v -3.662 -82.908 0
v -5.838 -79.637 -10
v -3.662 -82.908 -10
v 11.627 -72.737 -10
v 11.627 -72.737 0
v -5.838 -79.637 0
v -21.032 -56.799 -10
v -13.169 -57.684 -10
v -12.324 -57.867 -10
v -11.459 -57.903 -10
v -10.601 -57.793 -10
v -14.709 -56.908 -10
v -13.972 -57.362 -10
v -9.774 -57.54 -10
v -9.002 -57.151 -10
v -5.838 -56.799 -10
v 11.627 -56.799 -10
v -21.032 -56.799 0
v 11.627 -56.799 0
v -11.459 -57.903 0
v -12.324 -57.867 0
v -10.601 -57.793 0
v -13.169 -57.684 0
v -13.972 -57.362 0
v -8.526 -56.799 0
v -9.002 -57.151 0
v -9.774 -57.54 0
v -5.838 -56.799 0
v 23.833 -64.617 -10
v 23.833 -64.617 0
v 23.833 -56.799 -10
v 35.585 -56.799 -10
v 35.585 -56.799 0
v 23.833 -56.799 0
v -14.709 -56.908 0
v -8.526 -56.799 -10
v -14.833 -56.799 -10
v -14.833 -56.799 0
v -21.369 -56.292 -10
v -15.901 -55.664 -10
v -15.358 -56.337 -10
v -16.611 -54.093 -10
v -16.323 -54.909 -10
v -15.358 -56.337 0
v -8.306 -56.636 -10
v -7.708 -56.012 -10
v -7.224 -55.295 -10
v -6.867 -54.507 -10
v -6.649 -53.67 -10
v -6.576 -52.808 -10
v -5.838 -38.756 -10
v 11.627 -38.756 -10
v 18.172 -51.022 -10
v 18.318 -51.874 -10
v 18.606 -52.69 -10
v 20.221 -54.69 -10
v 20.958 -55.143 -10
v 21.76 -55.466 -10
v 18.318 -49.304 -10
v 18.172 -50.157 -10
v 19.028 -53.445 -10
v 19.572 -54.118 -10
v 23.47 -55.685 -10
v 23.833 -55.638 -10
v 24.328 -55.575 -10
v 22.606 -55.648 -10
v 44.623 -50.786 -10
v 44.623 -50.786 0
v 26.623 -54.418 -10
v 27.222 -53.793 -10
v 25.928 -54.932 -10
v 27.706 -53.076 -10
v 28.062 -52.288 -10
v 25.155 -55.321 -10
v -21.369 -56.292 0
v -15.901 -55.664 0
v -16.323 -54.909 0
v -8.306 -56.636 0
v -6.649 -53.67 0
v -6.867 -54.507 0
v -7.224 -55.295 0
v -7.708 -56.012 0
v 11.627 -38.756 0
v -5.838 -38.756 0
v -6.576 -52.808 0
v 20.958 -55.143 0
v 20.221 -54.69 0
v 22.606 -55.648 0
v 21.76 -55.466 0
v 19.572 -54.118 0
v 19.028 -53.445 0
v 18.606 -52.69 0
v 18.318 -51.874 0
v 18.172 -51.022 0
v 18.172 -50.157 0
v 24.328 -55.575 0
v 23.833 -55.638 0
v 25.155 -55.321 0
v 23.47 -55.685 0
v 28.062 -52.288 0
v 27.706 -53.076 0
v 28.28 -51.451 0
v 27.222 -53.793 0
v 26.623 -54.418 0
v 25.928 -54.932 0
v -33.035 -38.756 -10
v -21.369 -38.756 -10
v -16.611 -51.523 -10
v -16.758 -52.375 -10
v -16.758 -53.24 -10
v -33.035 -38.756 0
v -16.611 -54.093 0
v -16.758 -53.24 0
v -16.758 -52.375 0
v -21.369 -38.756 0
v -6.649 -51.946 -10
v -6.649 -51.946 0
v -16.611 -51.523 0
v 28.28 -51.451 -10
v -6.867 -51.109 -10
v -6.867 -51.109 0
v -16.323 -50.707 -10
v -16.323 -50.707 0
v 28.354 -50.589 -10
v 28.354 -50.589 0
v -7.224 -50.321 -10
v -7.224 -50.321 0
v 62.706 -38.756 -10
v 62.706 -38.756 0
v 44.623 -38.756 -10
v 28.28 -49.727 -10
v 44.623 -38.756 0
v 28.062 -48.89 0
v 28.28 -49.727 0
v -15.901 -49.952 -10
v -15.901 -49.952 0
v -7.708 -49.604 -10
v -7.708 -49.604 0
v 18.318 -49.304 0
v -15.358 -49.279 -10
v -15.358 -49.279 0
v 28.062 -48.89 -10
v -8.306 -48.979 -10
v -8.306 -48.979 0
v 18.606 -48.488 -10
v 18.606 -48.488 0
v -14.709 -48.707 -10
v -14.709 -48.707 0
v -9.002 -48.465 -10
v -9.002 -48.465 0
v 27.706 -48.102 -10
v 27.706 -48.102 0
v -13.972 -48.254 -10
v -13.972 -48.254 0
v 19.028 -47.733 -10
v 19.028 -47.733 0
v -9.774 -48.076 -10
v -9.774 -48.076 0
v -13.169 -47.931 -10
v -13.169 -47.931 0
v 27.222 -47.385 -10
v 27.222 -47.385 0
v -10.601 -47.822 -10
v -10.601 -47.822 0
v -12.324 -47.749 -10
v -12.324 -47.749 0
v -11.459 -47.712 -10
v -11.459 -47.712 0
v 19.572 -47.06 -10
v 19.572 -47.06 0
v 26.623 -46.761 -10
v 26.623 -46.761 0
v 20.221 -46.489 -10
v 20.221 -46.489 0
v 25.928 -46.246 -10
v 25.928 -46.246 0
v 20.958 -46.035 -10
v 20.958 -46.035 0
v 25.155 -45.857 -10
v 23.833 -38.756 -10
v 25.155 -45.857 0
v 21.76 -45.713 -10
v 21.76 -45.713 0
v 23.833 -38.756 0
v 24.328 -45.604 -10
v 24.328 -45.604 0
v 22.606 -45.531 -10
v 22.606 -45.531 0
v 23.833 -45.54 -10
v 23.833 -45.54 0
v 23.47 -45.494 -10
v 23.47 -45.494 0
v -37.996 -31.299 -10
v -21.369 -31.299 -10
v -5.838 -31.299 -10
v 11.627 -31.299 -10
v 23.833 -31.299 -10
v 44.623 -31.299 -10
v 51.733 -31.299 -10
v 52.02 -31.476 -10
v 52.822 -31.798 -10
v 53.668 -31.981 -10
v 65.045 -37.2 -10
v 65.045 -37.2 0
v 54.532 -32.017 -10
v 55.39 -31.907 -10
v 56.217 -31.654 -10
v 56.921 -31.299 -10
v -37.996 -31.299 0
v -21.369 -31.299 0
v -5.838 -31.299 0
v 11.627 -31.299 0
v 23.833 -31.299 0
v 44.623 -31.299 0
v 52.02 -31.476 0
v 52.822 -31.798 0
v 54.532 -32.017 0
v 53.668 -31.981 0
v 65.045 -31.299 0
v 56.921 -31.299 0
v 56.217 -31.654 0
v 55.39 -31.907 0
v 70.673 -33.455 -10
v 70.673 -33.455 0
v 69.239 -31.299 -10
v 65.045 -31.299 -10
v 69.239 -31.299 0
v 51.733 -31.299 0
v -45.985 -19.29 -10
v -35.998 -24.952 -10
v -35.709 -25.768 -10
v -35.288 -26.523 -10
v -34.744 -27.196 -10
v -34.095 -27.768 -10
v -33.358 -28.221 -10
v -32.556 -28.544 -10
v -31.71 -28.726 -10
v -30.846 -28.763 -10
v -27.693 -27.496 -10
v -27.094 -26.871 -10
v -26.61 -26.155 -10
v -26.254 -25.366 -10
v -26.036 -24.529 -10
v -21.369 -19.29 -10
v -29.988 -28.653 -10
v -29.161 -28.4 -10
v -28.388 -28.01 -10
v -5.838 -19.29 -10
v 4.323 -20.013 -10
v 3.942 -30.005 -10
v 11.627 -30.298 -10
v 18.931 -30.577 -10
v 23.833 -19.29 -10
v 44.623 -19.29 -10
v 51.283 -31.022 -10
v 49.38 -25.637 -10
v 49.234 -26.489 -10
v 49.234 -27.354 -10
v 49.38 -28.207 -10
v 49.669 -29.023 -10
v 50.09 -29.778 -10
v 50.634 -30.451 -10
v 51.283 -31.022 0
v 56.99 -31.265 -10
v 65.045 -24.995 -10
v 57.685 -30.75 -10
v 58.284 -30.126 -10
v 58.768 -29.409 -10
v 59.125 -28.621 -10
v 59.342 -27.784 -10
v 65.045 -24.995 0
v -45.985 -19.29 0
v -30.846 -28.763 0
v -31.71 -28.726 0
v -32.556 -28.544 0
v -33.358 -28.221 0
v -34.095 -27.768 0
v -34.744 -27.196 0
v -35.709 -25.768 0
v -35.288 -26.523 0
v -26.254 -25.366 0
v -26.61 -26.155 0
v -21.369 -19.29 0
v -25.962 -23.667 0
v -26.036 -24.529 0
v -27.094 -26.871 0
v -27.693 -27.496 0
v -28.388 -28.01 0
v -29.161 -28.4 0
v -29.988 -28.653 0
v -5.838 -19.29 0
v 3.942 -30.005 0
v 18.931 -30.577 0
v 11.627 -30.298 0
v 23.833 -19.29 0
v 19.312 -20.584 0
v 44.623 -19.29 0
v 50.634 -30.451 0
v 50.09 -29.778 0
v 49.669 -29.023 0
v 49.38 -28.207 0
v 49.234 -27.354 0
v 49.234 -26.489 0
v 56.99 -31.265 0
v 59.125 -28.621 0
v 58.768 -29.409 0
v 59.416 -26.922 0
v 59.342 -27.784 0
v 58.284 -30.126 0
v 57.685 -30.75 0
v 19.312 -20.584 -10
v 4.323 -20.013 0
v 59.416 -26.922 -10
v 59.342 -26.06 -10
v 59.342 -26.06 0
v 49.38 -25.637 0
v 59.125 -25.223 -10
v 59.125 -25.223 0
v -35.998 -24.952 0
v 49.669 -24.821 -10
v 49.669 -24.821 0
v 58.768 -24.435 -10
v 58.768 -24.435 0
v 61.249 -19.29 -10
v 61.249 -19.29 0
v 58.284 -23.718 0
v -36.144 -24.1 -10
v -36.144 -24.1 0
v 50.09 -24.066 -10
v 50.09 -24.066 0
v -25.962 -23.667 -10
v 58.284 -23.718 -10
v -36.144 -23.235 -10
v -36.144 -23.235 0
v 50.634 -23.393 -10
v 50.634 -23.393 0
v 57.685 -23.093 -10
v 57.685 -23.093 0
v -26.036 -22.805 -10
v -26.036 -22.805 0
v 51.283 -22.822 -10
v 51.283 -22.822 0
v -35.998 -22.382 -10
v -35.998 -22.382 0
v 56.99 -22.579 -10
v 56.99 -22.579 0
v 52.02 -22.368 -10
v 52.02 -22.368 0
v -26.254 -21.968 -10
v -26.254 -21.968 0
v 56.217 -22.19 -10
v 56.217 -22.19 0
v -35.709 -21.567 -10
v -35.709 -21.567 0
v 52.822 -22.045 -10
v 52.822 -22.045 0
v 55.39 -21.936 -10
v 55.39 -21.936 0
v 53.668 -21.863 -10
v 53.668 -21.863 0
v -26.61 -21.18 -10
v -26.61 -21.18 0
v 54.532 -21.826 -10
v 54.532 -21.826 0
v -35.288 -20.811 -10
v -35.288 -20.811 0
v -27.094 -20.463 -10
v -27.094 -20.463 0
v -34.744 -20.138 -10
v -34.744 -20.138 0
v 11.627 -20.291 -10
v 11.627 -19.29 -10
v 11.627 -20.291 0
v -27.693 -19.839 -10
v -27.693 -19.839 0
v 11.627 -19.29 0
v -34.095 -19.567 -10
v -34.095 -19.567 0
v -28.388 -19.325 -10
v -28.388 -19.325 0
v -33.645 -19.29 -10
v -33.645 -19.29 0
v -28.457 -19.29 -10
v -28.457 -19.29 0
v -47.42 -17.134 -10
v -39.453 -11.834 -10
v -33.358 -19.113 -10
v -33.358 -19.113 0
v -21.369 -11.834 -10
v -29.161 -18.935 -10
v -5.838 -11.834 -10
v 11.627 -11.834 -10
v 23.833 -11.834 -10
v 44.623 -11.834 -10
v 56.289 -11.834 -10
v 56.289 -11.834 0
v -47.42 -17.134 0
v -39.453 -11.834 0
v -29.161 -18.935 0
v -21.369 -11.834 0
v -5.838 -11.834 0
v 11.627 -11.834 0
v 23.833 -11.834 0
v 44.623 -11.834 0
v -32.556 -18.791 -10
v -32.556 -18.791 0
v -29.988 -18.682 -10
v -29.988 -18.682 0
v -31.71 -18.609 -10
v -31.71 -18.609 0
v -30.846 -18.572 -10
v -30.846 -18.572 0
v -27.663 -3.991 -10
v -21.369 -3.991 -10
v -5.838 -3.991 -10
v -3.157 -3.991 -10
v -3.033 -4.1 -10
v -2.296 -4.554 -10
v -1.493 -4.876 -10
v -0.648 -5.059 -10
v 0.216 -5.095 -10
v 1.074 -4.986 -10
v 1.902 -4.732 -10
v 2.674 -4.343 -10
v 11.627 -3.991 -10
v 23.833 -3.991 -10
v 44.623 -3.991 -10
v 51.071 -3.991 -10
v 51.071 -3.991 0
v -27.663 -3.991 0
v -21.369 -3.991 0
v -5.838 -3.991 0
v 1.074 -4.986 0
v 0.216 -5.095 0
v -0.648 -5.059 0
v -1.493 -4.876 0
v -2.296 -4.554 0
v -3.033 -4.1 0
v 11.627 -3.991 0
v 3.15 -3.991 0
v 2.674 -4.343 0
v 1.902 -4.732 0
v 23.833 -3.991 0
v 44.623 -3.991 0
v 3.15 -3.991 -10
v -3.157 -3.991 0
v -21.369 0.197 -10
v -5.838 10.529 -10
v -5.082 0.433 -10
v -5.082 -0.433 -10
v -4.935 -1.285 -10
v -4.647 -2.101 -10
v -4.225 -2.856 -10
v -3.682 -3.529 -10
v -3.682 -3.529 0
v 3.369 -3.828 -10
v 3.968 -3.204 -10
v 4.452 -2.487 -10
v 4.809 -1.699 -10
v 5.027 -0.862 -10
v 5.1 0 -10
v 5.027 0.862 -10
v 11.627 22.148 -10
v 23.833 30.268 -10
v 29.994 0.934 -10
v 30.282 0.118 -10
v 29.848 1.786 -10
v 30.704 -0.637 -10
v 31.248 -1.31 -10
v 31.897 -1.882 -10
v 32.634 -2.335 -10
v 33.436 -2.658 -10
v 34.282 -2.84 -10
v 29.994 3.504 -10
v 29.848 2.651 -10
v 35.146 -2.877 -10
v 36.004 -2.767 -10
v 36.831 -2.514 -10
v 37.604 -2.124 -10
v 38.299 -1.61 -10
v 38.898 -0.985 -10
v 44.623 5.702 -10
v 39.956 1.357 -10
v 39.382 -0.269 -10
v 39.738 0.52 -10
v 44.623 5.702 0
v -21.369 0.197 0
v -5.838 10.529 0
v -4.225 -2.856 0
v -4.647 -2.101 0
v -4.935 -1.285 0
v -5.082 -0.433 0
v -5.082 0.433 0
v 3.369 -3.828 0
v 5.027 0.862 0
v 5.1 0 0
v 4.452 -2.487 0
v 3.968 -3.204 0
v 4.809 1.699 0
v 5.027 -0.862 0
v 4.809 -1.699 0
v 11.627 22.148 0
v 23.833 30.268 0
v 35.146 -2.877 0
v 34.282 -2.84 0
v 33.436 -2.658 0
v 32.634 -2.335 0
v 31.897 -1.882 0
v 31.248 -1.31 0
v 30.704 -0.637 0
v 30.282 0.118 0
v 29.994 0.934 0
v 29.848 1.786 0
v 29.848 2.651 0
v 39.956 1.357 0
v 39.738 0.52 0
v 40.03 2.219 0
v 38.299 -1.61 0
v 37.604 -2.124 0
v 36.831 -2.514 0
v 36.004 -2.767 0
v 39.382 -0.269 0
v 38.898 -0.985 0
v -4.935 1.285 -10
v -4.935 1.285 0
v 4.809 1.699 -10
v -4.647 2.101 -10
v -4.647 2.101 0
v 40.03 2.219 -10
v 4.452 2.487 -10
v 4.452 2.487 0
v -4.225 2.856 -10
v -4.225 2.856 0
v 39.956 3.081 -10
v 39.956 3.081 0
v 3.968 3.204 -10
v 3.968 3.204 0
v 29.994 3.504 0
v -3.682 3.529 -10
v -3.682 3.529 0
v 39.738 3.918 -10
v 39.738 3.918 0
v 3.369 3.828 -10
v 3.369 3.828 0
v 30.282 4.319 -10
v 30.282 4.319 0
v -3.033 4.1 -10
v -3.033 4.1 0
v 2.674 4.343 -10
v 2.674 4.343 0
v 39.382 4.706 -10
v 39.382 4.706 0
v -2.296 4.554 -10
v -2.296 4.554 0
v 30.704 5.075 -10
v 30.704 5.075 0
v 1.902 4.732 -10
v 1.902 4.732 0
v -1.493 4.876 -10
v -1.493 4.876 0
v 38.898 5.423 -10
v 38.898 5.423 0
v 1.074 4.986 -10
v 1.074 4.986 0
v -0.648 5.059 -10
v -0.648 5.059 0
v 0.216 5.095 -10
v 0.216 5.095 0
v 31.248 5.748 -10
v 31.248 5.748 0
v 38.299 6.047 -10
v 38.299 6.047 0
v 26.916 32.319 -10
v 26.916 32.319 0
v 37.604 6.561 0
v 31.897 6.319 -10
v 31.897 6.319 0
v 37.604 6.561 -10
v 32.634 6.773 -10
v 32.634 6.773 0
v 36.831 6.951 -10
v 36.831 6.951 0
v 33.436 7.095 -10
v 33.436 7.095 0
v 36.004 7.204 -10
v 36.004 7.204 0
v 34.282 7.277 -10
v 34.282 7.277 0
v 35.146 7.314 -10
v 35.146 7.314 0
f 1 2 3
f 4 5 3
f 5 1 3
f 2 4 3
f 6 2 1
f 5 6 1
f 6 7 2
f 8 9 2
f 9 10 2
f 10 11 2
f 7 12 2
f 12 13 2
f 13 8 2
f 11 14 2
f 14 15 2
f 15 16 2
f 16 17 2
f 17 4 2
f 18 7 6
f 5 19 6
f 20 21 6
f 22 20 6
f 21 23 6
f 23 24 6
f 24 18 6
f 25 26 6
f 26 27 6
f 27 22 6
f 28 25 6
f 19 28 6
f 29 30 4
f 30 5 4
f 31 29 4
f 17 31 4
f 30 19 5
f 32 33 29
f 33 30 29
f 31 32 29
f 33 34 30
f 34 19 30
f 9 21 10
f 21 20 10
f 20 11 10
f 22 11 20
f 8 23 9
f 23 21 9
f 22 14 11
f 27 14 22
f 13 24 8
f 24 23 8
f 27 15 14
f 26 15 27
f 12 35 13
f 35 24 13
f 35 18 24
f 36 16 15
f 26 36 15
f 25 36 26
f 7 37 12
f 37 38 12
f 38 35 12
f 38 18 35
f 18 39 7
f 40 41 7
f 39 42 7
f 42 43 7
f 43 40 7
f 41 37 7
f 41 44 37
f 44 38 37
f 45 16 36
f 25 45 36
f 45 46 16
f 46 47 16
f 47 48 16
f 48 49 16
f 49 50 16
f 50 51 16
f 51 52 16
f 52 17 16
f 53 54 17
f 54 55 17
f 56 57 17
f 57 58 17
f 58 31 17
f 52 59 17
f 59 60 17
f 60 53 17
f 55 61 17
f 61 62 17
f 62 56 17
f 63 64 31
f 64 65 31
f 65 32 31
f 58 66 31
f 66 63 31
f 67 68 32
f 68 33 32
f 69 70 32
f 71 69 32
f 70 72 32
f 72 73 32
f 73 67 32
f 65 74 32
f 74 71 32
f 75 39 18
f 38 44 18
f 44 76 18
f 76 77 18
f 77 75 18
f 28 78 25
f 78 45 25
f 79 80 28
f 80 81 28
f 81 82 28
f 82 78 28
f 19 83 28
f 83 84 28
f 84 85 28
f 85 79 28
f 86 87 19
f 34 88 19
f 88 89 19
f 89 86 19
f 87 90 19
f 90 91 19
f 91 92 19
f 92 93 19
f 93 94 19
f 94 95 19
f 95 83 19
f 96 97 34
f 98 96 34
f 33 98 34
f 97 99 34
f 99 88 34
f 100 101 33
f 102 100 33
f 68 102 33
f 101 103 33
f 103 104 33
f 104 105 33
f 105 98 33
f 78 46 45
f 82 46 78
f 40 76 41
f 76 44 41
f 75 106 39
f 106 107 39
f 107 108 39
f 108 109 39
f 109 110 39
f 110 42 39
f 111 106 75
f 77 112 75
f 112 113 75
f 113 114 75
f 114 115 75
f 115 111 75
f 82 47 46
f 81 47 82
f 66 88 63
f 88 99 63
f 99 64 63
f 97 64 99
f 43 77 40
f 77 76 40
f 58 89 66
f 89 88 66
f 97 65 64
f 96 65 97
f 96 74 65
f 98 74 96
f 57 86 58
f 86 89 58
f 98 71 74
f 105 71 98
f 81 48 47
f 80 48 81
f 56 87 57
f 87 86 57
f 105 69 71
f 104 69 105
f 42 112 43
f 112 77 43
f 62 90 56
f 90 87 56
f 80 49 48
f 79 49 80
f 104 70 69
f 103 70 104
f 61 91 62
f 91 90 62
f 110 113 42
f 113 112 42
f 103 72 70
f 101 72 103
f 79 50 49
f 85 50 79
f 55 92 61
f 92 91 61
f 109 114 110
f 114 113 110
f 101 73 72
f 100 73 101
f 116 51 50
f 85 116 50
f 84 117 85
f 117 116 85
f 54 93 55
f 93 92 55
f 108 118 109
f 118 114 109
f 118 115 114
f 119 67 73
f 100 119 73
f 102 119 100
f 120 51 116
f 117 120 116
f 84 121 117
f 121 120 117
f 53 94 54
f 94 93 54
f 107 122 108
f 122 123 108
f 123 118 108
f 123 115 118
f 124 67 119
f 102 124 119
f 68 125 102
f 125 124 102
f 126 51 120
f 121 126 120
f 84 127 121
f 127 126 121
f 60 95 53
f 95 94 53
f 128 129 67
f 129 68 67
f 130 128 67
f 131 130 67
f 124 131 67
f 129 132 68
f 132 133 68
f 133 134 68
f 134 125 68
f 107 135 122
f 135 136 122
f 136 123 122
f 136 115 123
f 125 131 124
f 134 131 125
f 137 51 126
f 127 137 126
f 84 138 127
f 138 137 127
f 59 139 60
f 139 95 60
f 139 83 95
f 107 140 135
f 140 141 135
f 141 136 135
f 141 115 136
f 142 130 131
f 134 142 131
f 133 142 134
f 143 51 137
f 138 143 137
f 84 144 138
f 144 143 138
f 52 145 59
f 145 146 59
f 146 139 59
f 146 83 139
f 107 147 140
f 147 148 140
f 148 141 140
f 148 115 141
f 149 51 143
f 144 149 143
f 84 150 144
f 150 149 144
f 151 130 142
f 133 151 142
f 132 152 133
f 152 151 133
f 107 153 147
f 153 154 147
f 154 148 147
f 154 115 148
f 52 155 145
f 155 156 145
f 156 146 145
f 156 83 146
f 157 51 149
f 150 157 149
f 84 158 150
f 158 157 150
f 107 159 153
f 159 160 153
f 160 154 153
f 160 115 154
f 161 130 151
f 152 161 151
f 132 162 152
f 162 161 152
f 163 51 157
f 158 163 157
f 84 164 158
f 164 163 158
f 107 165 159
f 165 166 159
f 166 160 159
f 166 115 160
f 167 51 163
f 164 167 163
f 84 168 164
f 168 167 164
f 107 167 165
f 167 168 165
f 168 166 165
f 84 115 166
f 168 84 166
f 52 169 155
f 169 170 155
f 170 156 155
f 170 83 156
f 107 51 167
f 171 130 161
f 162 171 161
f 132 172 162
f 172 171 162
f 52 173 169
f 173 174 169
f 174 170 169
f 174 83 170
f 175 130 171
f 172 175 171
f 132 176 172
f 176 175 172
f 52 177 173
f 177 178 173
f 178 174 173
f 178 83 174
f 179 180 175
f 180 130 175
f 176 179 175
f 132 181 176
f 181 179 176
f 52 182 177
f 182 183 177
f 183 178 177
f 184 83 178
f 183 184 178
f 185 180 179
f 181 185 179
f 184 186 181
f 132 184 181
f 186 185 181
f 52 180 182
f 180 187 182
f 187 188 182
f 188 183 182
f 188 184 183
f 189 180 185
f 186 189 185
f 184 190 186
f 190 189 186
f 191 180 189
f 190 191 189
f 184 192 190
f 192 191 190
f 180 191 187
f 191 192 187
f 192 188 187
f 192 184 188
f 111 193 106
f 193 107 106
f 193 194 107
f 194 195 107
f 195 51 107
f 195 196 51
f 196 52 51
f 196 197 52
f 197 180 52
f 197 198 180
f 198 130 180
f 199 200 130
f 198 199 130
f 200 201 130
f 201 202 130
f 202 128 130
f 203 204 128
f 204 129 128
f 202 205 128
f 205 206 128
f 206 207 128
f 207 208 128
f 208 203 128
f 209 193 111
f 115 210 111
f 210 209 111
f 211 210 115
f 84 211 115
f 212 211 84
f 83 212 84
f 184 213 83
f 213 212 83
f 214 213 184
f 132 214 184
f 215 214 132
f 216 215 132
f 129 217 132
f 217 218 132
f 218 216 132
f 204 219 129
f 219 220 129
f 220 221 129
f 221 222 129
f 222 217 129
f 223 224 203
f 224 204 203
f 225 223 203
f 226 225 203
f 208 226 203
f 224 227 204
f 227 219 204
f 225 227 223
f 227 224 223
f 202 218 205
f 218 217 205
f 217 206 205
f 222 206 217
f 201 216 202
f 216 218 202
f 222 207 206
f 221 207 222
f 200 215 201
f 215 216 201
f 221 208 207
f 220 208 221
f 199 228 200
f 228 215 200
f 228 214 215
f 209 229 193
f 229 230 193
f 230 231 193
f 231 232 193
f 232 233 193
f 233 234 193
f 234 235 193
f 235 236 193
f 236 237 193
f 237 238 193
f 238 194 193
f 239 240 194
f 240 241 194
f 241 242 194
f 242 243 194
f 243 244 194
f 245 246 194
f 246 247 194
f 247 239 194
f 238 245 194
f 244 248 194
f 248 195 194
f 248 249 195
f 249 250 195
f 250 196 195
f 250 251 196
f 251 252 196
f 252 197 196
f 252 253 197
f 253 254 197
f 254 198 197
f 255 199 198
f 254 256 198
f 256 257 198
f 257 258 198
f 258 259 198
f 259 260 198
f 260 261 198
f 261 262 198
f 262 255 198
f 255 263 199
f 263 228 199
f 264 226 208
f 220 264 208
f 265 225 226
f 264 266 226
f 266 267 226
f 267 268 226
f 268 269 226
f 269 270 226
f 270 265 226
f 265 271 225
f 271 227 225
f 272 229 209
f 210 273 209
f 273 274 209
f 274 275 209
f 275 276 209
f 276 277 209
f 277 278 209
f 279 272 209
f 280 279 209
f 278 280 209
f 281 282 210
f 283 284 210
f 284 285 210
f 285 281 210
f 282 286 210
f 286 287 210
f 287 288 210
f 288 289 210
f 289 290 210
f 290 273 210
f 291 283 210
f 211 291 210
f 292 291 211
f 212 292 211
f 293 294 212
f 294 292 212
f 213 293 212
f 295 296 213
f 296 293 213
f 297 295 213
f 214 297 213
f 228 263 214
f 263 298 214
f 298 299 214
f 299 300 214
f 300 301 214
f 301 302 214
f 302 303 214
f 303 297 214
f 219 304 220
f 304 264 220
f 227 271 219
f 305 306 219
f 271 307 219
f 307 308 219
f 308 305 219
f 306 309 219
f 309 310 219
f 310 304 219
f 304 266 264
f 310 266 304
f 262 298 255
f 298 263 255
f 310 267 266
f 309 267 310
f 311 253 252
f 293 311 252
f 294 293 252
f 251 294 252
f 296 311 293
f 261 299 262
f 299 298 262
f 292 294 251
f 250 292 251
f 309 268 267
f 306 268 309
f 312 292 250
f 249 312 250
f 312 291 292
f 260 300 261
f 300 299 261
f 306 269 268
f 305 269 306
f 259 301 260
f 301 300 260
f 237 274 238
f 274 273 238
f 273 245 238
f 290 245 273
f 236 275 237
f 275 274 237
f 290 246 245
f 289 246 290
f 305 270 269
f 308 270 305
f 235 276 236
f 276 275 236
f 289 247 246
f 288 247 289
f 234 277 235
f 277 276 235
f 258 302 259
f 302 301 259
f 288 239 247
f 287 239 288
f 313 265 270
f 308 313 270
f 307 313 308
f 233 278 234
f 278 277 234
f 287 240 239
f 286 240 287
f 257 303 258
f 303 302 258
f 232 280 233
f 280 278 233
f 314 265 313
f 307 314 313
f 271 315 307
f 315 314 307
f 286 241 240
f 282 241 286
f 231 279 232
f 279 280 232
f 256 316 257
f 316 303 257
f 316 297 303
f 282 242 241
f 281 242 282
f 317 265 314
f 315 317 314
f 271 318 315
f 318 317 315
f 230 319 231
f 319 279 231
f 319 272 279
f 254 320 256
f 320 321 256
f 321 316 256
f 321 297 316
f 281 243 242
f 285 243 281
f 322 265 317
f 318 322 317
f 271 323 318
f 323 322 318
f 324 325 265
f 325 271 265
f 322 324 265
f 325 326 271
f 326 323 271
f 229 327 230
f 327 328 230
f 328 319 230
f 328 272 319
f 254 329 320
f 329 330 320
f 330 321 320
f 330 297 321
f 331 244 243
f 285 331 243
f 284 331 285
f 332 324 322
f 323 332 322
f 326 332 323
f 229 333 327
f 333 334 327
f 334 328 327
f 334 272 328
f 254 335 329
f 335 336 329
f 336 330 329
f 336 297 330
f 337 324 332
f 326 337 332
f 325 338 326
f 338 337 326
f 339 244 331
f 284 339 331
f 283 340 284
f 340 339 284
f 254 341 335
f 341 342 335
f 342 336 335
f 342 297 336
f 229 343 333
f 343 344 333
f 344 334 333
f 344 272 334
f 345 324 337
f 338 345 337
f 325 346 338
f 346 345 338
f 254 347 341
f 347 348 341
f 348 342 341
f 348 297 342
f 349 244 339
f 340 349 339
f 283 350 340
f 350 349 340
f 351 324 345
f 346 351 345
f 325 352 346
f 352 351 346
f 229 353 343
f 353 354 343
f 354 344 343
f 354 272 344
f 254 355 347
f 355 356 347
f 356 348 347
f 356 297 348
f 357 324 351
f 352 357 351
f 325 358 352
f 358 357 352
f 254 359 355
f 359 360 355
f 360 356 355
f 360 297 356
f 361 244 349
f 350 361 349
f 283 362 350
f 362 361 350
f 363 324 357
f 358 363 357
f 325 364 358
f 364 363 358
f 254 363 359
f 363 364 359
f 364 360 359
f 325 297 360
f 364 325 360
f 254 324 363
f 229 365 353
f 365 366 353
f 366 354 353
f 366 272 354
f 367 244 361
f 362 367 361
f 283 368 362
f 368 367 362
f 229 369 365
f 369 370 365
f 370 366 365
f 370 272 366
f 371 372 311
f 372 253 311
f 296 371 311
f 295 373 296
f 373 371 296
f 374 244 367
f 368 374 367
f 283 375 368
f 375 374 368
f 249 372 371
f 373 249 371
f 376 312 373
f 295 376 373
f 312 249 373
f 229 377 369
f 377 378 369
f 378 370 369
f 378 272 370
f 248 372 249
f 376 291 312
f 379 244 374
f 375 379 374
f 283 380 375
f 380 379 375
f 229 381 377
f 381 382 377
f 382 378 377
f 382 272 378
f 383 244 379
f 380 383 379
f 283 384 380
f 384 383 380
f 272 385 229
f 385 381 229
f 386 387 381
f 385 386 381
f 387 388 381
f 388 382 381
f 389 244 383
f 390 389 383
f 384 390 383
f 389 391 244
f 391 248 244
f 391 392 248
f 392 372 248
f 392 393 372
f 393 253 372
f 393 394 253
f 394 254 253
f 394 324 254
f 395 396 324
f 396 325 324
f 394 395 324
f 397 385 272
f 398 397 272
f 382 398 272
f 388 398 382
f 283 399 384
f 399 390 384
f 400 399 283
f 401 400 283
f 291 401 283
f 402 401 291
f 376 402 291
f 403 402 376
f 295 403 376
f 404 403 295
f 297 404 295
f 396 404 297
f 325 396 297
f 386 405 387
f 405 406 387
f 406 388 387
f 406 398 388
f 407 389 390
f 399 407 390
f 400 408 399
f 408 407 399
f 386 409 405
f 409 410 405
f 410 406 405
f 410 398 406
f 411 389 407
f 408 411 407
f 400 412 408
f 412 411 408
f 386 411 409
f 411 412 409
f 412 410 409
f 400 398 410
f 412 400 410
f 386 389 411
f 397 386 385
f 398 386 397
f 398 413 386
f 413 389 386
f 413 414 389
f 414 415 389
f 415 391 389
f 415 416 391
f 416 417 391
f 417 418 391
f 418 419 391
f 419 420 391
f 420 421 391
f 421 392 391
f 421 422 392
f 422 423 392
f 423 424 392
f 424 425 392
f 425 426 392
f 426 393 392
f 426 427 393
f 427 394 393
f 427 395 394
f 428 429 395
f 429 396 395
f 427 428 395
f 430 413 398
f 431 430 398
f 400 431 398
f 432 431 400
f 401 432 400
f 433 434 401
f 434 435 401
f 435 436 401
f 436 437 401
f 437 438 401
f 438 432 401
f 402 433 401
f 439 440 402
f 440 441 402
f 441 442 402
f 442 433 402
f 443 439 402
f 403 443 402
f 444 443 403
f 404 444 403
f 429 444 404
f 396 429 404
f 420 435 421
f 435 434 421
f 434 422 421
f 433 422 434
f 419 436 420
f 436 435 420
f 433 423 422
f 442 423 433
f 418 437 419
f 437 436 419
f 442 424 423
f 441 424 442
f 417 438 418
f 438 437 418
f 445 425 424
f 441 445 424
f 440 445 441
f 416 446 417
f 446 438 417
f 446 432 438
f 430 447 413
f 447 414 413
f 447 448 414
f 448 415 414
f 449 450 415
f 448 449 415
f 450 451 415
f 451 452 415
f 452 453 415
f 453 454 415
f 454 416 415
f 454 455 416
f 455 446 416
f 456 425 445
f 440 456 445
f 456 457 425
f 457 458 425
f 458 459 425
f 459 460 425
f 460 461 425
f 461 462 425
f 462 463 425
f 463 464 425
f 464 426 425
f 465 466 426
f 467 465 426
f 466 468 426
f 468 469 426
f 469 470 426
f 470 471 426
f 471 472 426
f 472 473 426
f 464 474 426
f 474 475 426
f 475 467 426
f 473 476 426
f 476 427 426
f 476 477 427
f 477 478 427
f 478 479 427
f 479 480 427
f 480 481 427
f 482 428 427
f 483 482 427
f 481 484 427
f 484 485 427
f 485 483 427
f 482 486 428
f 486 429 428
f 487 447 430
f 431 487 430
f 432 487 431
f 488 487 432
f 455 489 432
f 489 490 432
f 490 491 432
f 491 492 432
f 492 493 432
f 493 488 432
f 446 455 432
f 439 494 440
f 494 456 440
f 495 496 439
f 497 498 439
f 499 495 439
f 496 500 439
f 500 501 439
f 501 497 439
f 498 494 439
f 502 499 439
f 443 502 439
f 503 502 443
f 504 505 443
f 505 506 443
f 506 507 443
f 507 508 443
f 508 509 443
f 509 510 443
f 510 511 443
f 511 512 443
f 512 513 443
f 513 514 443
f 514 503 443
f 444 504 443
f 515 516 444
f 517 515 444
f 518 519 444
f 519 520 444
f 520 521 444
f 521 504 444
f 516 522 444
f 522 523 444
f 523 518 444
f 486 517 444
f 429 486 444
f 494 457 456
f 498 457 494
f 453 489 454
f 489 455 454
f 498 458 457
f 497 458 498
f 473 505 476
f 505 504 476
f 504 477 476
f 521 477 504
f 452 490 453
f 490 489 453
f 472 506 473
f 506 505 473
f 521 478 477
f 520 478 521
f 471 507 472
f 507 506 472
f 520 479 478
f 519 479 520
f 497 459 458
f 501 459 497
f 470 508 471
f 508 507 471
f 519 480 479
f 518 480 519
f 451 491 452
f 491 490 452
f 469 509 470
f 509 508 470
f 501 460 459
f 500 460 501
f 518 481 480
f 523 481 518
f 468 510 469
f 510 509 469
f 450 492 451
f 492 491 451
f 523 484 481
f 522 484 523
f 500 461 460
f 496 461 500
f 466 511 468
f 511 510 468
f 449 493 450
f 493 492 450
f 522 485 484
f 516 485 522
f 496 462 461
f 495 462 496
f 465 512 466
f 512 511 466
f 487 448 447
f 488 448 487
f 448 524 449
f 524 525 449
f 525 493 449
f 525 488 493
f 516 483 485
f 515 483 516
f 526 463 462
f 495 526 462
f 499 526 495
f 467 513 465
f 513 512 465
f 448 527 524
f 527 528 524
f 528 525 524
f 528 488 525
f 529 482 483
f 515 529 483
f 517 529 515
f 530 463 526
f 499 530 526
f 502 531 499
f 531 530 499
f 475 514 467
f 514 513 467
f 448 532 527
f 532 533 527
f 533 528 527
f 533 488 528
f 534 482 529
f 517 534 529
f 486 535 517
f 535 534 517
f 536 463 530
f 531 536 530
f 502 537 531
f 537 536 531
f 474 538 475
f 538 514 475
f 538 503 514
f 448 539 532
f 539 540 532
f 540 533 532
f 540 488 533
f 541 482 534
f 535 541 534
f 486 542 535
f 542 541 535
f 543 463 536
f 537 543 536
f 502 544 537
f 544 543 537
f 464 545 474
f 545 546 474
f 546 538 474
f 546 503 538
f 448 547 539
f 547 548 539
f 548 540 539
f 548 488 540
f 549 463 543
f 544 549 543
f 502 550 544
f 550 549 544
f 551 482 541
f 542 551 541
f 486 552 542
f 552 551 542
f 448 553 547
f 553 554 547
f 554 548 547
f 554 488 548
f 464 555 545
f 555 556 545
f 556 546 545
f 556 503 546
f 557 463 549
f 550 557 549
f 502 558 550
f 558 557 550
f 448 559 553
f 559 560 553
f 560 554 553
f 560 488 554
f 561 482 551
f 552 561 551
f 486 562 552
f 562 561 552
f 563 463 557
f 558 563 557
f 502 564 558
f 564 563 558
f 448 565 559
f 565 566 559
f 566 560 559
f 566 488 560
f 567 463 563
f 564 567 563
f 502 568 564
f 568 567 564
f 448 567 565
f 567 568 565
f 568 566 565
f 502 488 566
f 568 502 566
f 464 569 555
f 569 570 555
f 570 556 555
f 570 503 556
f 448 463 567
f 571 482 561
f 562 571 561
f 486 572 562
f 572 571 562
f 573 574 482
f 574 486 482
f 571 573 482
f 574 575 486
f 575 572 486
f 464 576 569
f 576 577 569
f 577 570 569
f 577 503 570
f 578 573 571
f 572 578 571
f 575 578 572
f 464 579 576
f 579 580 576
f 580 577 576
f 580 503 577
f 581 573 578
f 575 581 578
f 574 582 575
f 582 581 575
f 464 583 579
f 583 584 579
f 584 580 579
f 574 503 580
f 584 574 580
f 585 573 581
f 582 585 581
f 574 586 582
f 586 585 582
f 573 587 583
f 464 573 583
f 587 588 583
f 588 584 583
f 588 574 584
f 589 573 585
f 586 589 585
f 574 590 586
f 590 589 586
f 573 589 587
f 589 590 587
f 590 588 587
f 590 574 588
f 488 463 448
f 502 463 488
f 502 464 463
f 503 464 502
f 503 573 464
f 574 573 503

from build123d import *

# Parameters (mm, degrees)
SKETCH1_R           = 5.1
BOSS_EXTRUDE1_DEPTH = 10
CUT_EXTRUDE1_REACH  = 111.4


with BuildPart() as part:
    # Sketch1 → Boss-Extrude1 (new body)
    with BuildSketch(Plane.XY):
        Polygon((-3.661981052, -82.908158574), (70.673174696, -33.455495228), (26.915653686, 32.318962998), (-47.419502062, -17.133700347), align=None)
        Circle(SKETCH1_R, mode=Mode.SUBTRACT)
        with Locations((34.929606693, 2.218687963)):
            Circle(SKETCH1_R, mode=Mode.SUBTRACT)
        with Locations((54.315850178, -26.921894796)):
            Circle(SKETCH1_R, mode=Mode.SUBTRACT)
        with Locations((23.253672634, -50.589195576)):
            Circle(SKETCH1_R, mode=Mode.SUBTRACT)
        with Locations((-11.675934059, -52.807883539)):
            Circle(SKETCH1_R, mode=Mode.SUBTRACT)
        with Locations((-31.062177544, -23.66730078)):
            Circle(SKETCH1_R, mode=Mode.SUBTRACT)
    extrude(amount=-BOSS_EXTRUDE1_DEPTH)

    # Sketch2 → Cut-Extrude1 (cut, up to next)
    with BuildSketch(Plane.XY, mode=Mode.PRIVATE) as cut_extrude1_sk1:
        Polygon((4.322740293, -20.01253557), (19.311853758, -20.583917696), (18.930932341, -30.576660006), (3.941818876, -30.00527788), align=None)
    cut_extrude1_tool1 = extrude(cut_extrude1_sk1.sketch, amount=-CUT_EXTRUDE1_REACH, mode=Mode.PRIVATE) & part.part
    add(cut_extrude1_tool1.solids().sort_by_distance((11.626836, -25.294598, 0))[0], mode=Mode.SUBTRACT)


solid = part.part
